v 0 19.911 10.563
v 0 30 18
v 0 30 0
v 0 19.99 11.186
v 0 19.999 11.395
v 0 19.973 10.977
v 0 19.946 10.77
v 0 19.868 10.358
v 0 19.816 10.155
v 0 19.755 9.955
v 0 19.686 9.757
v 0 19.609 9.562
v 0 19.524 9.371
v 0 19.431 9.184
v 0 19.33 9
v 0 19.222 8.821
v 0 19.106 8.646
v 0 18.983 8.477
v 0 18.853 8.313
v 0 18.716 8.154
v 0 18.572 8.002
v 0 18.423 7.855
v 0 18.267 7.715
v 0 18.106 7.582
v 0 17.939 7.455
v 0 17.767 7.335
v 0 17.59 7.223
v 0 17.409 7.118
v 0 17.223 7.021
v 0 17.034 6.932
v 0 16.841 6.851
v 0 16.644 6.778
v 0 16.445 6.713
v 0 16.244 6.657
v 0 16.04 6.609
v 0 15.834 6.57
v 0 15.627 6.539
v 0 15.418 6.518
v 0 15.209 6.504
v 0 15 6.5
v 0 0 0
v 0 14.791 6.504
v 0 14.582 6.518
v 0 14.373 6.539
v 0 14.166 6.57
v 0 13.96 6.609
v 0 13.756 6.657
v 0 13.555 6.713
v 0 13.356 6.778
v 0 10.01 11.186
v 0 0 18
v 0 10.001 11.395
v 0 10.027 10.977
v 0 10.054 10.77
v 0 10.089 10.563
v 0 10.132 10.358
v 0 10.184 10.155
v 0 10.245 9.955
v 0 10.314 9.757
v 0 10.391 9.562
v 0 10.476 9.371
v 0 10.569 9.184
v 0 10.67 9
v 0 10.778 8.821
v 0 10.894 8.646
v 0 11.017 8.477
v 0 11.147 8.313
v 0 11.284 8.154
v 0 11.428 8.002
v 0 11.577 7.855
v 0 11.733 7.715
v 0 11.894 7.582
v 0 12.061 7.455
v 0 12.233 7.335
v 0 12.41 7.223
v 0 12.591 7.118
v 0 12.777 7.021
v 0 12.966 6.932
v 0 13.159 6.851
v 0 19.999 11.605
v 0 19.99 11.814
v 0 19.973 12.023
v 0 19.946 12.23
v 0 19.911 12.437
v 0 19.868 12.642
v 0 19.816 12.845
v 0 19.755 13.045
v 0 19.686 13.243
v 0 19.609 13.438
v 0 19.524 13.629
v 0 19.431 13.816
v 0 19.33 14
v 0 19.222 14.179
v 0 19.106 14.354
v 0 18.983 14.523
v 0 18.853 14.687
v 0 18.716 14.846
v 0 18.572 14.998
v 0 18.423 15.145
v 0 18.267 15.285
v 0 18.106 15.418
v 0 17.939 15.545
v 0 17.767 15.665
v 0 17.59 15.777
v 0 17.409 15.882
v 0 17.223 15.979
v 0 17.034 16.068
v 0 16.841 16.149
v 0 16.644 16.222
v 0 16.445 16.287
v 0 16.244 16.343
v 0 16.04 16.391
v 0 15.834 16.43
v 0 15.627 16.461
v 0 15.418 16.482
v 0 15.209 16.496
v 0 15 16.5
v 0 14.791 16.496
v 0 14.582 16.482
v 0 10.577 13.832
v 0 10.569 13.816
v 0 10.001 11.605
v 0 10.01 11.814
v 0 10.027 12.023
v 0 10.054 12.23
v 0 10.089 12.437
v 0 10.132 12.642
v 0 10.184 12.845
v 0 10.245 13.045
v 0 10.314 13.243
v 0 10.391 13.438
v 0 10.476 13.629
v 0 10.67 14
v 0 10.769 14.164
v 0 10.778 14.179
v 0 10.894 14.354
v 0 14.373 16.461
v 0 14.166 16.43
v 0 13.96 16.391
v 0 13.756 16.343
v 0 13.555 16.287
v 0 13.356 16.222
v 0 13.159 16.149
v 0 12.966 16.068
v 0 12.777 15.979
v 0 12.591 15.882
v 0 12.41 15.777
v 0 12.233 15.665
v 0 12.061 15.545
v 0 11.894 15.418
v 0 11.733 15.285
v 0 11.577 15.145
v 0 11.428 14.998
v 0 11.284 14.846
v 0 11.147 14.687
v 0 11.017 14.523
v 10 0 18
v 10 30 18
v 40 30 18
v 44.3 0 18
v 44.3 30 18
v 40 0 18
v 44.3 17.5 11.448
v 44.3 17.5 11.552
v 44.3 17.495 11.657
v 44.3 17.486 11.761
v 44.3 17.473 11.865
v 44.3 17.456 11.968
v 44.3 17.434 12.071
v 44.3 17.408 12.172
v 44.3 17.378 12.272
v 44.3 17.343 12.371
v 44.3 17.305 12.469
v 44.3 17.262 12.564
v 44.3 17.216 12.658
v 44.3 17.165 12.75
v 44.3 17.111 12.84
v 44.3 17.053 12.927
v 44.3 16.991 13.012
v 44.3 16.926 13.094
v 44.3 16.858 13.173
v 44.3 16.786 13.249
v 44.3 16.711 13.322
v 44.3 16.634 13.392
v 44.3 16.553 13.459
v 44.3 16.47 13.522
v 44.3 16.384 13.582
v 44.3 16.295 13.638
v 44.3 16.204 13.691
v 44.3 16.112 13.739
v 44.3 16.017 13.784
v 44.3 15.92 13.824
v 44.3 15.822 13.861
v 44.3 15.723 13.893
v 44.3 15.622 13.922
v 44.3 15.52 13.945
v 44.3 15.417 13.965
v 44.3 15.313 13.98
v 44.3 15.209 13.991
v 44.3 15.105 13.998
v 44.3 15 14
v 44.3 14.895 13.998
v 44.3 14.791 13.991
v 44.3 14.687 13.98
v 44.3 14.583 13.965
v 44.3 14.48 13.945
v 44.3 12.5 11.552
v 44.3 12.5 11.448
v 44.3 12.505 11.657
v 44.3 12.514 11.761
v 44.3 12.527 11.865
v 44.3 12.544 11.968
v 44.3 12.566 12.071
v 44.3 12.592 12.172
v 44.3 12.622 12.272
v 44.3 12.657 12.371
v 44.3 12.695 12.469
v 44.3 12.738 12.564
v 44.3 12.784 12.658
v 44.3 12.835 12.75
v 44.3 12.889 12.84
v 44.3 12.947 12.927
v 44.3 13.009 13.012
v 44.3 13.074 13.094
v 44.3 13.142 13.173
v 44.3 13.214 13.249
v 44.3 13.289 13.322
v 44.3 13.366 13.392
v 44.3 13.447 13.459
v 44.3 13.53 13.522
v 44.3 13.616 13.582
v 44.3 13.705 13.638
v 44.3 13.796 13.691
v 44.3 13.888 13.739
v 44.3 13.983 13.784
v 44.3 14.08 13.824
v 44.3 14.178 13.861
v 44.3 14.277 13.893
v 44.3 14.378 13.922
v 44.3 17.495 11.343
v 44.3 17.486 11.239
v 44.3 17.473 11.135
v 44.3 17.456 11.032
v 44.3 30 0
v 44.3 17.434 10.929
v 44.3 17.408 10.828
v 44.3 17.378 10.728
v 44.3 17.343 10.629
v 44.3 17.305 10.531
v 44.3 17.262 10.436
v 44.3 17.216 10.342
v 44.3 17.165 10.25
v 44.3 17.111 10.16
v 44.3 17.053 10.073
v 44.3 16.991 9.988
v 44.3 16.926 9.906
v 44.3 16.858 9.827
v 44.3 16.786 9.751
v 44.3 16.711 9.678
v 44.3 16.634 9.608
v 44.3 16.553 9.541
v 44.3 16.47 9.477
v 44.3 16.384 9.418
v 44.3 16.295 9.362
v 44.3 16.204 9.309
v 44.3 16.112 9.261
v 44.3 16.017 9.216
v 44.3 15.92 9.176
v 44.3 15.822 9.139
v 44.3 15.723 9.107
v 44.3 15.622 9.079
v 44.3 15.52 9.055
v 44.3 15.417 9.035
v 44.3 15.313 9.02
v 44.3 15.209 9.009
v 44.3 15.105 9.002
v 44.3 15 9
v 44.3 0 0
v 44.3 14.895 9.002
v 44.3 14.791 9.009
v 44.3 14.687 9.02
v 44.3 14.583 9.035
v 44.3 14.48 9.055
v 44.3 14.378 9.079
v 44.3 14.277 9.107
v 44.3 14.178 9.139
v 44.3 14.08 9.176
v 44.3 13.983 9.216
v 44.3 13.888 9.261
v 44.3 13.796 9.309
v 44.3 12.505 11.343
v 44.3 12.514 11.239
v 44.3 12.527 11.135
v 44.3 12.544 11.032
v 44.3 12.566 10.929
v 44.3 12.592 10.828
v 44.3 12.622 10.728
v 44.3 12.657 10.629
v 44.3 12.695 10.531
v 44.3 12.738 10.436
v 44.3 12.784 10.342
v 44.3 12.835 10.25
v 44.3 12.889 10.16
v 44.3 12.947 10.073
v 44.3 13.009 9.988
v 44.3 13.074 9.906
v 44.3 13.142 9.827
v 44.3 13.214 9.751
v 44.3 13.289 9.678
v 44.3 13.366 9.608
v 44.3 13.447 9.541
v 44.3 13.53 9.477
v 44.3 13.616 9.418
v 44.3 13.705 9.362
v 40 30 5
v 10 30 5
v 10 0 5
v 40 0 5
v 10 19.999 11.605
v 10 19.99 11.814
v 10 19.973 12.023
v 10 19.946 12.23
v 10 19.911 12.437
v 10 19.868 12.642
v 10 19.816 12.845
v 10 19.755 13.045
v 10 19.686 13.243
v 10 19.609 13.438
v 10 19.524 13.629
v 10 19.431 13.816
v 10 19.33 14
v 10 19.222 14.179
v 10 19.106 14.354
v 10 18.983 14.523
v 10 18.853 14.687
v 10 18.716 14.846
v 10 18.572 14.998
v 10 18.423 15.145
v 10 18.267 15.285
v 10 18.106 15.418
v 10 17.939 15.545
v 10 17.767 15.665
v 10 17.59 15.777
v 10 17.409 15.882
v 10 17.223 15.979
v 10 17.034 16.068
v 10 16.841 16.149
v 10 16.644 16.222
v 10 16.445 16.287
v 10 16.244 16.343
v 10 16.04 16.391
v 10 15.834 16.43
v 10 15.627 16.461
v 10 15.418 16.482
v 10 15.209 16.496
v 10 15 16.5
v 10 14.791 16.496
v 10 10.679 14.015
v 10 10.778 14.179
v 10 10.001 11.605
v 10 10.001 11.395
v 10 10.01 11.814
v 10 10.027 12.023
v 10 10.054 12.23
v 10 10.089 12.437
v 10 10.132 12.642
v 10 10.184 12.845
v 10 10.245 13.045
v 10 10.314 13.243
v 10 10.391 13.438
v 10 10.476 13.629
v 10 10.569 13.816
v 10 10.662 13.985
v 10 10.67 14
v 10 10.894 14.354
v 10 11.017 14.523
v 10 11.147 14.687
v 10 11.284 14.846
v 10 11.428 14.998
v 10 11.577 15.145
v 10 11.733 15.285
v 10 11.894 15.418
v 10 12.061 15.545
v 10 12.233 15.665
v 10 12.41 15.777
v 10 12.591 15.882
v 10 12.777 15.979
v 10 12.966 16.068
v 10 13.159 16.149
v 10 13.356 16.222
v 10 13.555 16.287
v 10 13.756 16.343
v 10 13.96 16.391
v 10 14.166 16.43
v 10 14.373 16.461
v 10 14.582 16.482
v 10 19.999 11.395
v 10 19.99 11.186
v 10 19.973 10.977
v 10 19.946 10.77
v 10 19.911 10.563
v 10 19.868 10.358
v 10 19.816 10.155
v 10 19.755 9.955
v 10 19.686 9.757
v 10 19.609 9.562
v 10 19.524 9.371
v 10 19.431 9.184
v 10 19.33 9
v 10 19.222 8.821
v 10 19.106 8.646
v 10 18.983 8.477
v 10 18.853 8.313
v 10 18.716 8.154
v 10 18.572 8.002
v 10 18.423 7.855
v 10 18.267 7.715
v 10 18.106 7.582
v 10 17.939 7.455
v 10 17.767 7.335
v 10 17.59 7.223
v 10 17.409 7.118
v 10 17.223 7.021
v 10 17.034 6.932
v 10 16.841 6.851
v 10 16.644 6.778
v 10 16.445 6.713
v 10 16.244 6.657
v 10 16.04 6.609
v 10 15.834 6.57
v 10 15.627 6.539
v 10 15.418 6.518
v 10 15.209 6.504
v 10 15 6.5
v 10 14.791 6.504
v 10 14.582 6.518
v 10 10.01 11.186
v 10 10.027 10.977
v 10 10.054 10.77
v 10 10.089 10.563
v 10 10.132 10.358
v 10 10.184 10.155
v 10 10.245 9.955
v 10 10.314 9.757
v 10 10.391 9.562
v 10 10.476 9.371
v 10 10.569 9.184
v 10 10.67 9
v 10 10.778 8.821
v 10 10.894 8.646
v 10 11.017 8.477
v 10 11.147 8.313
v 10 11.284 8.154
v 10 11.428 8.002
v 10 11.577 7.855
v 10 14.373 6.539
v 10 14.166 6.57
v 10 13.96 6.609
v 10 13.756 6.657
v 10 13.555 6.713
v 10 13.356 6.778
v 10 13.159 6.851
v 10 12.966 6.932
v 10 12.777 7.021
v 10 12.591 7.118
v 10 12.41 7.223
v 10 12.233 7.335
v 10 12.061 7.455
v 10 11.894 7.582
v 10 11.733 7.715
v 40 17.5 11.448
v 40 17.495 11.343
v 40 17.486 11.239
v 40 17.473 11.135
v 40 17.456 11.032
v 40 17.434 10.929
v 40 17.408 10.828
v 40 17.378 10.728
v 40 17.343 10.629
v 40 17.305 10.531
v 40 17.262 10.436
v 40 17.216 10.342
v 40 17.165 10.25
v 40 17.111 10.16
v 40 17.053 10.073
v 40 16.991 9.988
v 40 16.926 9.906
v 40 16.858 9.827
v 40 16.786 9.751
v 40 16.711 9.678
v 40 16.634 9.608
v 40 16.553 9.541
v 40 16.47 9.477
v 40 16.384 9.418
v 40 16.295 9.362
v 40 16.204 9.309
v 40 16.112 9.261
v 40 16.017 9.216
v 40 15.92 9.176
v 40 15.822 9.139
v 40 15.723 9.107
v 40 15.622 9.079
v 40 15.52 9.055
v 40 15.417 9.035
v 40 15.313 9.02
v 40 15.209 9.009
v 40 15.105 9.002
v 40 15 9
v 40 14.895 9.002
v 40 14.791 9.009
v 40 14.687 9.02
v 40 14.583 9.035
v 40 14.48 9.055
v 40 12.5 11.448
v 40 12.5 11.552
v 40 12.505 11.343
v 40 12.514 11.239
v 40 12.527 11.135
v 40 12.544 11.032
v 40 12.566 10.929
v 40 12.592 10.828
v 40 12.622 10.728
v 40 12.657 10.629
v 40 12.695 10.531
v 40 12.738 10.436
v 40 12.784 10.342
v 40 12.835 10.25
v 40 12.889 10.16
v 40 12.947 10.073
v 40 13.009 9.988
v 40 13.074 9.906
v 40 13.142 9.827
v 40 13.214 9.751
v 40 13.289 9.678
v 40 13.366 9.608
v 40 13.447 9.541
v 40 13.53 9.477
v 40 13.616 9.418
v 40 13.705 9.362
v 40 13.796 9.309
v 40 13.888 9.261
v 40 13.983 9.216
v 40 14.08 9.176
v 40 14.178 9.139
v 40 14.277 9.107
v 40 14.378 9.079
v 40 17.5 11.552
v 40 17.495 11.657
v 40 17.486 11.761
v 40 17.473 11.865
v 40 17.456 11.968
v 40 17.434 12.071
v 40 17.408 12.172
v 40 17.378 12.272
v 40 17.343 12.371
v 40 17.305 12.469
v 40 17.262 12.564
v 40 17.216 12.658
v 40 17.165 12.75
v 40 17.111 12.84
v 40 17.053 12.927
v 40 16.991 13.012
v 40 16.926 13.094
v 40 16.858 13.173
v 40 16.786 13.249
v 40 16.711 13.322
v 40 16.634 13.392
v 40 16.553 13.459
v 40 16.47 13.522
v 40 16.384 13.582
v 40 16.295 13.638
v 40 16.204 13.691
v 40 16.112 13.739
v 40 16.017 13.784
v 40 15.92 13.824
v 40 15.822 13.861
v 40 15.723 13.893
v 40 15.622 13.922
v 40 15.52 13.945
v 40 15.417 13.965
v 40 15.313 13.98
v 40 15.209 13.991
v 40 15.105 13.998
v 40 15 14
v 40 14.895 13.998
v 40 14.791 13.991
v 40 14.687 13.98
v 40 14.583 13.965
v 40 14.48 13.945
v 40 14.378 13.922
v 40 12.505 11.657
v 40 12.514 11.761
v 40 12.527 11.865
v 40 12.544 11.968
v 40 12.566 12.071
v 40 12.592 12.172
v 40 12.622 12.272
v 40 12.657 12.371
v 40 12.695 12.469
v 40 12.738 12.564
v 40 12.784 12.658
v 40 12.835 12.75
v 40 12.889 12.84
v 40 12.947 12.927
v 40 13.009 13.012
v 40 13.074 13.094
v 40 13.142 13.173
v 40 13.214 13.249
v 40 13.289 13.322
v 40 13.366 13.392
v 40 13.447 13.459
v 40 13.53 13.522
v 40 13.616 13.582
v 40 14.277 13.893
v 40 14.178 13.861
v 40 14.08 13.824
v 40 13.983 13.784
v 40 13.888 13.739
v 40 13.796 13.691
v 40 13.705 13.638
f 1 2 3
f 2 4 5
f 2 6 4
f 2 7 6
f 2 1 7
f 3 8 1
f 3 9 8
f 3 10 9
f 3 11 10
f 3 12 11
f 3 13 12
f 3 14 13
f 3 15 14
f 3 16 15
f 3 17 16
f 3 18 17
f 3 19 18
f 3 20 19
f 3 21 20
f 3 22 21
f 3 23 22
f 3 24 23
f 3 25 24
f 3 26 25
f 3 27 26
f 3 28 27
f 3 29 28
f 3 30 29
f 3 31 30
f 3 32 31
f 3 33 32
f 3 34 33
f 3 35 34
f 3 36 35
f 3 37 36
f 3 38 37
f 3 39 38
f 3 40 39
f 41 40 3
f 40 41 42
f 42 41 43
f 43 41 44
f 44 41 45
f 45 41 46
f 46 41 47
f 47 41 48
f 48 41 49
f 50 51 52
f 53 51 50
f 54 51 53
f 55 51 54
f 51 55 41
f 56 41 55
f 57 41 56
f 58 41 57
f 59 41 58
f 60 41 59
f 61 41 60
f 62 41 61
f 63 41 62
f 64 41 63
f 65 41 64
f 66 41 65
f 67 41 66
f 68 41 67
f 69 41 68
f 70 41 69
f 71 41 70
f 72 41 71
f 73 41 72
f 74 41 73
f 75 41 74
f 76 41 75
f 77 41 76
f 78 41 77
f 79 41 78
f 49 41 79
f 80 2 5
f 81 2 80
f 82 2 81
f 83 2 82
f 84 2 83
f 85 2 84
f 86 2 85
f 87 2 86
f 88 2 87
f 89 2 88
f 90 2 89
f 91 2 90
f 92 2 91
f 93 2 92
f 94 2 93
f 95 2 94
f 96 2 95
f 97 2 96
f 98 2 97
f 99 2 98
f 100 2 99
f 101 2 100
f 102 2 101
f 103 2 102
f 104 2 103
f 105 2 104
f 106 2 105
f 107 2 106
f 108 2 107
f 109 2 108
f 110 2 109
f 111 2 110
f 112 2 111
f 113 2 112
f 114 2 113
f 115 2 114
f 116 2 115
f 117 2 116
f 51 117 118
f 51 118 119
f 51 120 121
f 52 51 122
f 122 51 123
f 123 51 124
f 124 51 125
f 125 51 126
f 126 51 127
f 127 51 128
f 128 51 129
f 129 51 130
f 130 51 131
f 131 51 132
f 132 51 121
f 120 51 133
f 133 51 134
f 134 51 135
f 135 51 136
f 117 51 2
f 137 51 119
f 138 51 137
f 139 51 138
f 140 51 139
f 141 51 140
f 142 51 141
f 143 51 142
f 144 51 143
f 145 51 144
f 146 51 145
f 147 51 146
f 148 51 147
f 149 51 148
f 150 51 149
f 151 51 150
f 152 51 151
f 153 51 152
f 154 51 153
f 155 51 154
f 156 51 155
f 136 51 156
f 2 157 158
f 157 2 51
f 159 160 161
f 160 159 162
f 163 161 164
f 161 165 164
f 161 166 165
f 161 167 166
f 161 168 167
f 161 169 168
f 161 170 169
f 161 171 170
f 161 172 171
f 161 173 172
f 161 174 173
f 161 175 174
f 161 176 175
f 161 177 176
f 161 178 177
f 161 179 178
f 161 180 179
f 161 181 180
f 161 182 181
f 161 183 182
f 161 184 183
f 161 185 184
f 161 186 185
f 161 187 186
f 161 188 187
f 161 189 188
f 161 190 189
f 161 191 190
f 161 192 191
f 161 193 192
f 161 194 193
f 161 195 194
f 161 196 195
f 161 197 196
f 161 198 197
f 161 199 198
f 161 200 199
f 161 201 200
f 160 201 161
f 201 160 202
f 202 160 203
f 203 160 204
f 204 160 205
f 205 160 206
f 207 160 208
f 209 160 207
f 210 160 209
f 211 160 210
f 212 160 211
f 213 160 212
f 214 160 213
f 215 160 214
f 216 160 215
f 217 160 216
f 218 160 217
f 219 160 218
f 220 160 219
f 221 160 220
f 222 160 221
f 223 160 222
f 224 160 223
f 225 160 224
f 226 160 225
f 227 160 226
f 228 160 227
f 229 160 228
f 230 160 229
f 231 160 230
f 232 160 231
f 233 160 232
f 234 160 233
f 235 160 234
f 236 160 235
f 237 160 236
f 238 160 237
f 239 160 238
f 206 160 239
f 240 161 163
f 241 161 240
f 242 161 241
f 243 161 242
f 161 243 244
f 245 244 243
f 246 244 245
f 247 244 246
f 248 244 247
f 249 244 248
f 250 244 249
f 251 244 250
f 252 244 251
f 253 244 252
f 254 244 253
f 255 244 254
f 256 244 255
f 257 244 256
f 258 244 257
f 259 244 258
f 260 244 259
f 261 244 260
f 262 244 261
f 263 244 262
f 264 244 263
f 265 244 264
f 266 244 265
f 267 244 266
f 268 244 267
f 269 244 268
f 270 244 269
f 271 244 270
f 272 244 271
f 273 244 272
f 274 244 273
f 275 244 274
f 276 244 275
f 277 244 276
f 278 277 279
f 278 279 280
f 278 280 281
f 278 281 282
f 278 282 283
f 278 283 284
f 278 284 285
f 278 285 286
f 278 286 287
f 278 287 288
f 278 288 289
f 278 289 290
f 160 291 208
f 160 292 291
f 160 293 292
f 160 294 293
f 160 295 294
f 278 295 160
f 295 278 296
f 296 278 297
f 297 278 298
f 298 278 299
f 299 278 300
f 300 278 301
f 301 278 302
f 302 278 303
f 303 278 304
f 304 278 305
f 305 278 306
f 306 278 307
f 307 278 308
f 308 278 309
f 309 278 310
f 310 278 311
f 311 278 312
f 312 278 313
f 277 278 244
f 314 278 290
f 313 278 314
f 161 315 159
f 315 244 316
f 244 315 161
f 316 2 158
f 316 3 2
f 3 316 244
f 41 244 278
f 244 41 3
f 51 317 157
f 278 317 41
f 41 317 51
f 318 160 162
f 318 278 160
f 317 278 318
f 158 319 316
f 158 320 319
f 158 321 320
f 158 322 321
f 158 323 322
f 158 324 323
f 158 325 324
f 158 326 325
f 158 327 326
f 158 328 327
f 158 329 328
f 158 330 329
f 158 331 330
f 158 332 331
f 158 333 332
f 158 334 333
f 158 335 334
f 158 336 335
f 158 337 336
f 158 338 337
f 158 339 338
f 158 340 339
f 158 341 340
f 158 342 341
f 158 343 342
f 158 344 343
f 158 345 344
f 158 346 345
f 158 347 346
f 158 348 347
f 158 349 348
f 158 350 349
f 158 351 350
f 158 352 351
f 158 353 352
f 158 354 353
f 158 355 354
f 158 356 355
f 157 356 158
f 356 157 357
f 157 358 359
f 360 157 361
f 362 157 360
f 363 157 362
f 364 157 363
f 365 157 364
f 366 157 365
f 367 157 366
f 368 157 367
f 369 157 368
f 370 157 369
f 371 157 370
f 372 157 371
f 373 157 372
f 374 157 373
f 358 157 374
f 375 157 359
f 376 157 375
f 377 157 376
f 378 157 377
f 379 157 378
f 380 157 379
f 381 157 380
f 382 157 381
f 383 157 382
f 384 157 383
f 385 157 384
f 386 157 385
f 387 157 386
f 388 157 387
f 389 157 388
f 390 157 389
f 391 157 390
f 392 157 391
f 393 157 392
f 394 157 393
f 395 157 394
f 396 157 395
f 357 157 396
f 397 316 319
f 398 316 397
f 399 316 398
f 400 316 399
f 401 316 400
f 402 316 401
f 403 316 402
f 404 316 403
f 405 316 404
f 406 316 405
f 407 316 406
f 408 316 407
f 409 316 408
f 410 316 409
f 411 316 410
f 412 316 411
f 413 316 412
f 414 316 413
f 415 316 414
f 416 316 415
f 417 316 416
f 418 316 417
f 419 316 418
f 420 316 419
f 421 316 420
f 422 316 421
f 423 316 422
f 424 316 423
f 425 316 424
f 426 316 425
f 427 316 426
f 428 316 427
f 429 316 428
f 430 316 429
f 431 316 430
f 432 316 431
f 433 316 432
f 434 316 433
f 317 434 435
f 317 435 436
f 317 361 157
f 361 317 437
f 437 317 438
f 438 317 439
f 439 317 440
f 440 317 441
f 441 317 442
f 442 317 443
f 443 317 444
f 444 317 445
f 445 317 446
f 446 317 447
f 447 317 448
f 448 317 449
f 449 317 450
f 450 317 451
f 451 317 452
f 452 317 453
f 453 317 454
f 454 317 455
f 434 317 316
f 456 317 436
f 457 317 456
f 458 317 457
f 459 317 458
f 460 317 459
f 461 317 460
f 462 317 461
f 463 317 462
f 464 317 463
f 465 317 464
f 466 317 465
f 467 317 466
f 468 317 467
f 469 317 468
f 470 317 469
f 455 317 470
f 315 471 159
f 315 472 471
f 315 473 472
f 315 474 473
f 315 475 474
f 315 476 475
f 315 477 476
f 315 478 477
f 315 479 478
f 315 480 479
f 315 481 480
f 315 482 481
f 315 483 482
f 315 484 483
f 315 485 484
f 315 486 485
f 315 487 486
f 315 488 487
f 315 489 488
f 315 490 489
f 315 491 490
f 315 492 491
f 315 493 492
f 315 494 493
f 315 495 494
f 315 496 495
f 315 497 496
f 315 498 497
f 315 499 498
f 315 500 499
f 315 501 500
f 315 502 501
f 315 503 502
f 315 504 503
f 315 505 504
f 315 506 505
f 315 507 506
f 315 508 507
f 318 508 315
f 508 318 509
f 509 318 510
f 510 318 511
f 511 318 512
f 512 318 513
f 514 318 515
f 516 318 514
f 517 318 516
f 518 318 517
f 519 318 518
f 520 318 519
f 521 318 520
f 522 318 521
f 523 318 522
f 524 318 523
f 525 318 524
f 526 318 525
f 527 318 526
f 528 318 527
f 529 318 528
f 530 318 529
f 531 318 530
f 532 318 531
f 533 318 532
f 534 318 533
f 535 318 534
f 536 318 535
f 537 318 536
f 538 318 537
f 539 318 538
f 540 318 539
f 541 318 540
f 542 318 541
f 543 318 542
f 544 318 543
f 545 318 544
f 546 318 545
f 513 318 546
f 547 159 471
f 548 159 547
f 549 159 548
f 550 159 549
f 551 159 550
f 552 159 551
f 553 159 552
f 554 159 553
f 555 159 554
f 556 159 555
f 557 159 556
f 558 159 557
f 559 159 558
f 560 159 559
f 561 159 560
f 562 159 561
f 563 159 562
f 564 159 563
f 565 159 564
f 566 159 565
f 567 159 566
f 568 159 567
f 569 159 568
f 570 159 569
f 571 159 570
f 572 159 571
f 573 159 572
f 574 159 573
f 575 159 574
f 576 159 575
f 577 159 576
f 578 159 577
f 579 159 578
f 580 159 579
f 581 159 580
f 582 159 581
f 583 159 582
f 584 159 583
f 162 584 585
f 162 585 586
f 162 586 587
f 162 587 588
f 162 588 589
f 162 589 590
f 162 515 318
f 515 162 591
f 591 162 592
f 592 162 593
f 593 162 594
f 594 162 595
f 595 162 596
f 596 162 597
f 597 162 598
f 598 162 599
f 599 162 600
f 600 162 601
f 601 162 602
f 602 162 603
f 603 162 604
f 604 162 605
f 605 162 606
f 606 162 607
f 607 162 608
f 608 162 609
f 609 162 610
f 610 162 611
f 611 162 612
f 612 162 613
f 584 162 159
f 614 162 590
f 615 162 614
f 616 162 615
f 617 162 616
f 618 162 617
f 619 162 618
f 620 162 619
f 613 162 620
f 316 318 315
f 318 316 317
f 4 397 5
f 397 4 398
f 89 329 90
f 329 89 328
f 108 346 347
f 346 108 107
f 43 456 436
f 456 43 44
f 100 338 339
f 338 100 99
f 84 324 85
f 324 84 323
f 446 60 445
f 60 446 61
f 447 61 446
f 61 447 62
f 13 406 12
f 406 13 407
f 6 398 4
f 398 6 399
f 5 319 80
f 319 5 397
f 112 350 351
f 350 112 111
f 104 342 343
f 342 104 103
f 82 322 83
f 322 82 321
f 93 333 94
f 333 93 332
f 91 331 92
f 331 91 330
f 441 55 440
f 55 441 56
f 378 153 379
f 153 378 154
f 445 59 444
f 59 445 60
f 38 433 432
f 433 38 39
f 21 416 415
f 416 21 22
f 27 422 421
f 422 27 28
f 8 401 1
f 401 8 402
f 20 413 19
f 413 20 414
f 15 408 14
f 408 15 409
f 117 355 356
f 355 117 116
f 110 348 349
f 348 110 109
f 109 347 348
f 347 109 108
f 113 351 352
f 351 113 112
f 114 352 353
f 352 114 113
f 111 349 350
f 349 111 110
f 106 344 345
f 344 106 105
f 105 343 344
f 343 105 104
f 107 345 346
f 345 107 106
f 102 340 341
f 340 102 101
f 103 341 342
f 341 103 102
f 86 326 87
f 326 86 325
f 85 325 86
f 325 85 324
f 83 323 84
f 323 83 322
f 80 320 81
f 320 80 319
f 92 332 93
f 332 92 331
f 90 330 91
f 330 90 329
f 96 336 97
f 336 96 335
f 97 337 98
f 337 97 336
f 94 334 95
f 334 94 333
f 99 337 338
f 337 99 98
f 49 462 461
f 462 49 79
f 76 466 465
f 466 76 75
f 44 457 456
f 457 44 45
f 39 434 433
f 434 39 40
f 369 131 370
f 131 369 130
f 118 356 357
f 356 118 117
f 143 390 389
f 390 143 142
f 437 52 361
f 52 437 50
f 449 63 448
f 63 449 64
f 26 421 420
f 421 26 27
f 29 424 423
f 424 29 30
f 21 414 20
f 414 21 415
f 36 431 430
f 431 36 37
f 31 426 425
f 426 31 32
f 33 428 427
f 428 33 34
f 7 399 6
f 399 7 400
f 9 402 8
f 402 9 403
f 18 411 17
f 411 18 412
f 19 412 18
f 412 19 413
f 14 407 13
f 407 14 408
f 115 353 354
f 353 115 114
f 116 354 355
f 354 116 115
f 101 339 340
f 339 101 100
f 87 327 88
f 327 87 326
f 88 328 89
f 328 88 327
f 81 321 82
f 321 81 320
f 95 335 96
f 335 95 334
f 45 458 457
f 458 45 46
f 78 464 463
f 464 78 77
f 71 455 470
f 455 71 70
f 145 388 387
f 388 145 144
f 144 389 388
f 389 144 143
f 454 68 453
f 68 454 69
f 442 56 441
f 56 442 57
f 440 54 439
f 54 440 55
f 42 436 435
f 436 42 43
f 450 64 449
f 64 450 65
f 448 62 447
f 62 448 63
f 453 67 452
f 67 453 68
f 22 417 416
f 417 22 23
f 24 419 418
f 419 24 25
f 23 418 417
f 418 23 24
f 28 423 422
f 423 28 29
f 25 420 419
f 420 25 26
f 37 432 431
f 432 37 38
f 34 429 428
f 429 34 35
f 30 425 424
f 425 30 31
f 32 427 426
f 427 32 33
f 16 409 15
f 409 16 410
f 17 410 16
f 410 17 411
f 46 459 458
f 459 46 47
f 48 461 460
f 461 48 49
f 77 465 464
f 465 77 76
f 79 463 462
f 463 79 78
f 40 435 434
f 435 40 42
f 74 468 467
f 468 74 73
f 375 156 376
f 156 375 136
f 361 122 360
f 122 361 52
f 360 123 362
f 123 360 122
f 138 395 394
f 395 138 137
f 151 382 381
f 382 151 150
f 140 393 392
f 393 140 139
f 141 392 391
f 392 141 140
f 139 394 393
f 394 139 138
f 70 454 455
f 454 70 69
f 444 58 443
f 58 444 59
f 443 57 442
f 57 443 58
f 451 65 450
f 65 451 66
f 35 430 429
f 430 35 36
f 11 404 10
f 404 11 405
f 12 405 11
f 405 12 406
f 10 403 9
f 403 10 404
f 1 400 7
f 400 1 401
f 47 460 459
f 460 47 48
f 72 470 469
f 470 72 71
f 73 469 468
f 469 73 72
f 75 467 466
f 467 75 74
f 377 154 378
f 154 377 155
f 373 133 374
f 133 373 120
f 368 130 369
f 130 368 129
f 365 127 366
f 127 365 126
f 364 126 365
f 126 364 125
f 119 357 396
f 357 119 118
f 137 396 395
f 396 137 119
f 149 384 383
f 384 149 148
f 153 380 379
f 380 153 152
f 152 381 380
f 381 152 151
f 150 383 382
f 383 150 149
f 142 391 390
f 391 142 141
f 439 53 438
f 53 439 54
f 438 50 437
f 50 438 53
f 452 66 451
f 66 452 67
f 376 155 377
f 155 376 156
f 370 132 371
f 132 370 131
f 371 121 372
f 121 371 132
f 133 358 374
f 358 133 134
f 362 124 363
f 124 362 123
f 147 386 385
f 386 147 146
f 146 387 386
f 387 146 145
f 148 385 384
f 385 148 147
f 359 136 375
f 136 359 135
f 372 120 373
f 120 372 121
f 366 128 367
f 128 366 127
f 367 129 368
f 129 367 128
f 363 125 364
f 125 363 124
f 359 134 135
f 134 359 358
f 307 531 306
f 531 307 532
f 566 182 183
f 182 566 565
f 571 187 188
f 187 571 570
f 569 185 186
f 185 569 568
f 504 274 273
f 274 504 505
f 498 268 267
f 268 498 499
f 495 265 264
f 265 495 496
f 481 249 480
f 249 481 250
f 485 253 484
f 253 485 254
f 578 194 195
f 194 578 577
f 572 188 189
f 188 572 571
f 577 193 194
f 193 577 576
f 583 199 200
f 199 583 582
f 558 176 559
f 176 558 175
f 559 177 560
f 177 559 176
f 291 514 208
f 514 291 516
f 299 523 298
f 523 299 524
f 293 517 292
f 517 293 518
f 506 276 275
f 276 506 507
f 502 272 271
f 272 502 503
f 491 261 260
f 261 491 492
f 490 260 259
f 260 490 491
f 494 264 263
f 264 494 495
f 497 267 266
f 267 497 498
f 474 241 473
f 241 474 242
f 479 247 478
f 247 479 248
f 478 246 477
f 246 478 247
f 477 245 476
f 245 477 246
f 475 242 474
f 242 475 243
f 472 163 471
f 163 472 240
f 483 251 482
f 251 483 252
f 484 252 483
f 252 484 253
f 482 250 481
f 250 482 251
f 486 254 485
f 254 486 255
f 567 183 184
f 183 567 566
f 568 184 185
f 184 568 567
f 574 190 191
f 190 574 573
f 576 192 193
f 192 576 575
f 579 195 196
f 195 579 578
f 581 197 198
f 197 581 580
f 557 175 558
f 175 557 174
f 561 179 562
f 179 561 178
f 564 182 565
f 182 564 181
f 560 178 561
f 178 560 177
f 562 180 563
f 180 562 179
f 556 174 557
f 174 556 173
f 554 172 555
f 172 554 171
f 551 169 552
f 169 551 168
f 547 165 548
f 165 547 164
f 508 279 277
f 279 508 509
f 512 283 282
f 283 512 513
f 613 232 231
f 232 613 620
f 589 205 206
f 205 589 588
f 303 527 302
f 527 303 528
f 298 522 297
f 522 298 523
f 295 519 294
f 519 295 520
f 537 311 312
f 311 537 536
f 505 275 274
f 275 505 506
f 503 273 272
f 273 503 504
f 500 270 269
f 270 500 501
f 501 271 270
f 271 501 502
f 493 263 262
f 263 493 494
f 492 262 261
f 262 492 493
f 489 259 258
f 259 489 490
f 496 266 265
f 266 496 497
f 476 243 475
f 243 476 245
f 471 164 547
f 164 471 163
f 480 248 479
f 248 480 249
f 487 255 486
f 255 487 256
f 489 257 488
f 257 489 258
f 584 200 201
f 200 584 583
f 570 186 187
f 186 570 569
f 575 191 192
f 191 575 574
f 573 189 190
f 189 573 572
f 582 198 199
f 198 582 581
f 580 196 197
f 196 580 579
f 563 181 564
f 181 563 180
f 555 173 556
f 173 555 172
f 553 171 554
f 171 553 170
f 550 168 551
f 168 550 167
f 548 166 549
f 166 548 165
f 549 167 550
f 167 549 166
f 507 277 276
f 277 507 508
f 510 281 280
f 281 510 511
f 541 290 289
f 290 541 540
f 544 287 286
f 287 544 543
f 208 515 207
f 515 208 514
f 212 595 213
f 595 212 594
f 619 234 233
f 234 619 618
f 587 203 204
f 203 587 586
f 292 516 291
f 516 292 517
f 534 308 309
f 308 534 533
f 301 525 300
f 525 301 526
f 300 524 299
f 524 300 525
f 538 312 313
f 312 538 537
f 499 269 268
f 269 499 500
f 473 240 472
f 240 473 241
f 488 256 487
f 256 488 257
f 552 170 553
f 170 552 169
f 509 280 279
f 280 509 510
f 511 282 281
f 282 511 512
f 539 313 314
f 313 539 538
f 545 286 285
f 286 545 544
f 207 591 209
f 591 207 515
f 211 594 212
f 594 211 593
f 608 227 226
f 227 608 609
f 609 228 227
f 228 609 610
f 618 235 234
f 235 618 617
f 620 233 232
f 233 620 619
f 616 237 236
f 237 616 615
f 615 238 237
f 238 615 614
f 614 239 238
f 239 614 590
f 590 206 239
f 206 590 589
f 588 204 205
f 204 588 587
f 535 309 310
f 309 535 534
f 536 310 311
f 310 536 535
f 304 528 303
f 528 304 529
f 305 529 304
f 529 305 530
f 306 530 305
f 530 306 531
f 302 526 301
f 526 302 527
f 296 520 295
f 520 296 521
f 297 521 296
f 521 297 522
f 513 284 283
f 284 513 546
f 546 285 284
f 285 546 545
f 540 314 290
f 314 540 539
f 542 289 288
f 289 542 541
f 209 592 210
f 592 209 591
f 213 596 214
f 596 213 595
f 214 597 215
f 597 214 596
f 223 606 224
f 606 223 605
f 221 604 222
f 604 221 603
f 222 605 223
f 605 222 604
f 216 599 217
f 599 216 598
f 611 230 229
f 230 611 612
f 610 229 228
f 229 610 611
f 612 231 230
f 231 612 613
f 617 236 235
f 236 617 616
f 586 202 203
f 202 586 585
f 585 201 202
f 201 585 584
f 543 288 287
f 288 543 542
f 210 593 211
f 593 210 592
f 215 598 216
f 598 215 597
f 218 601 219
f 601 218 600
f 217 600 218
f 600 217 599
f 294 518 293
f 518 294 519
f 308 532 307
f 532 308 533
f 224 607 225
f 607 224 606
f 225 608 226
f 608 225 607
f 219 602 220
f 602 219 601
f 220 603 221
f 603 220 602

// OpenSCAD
// Creates a small holder for a phototransistor and laser bought off Adafruit.
// Going to spin a fidget spinner in-between them and measure its RPM


LASER_LENGTH = 10;
LASER_DIAMETER = 10;

DETECTOR_DIAMETER = 5;
DETECTOR_LENGTH = 4.3;

VOID_WIDTH=30;
VOID_HEIGHT = 13;

PLATFORM_HEIGHT=5;
PLATFORM_DEPTH = 30;

module_length = LASER_LENGTH + VOID_WIDTH + DETECTOR_LENGTH;
module_height = VOID_HEIGHT + PLATFORM_HEIGHT;
module_depth = 30;

difference()
{
  cube([module_length, module_depth, module_height]);
  
  translate([LASER_LENGTH, -1, PLATFORM_HEIGHT])
  cube([VOID_WIDTH, module_depth + 2, VOID_HEIGHT + 1]);
  
  translate([-1, PLATFORM_DEPTH / 2, PLATFORM_HEIGHT + VOID_HEIGHT / 2])
  rotate(90, [0,1,0])
  cylinder(h=LASER_LENGTH+2, d=LASER_DIAMETER);
  
  translate([LASER_LENGTH + VOID_WIDTH -1, PLATFORM_DEPTH / 2, PLATFORM_HEIGHT + VOID_HEIGHT / 2])
  rotate(90, [0,1,0])
  cylinder(h=DETECTOR_LENGTH+2, d=DETECTOR_DIAMETER);
  
}

// Makes the render smoother for circles
$fn=150;
